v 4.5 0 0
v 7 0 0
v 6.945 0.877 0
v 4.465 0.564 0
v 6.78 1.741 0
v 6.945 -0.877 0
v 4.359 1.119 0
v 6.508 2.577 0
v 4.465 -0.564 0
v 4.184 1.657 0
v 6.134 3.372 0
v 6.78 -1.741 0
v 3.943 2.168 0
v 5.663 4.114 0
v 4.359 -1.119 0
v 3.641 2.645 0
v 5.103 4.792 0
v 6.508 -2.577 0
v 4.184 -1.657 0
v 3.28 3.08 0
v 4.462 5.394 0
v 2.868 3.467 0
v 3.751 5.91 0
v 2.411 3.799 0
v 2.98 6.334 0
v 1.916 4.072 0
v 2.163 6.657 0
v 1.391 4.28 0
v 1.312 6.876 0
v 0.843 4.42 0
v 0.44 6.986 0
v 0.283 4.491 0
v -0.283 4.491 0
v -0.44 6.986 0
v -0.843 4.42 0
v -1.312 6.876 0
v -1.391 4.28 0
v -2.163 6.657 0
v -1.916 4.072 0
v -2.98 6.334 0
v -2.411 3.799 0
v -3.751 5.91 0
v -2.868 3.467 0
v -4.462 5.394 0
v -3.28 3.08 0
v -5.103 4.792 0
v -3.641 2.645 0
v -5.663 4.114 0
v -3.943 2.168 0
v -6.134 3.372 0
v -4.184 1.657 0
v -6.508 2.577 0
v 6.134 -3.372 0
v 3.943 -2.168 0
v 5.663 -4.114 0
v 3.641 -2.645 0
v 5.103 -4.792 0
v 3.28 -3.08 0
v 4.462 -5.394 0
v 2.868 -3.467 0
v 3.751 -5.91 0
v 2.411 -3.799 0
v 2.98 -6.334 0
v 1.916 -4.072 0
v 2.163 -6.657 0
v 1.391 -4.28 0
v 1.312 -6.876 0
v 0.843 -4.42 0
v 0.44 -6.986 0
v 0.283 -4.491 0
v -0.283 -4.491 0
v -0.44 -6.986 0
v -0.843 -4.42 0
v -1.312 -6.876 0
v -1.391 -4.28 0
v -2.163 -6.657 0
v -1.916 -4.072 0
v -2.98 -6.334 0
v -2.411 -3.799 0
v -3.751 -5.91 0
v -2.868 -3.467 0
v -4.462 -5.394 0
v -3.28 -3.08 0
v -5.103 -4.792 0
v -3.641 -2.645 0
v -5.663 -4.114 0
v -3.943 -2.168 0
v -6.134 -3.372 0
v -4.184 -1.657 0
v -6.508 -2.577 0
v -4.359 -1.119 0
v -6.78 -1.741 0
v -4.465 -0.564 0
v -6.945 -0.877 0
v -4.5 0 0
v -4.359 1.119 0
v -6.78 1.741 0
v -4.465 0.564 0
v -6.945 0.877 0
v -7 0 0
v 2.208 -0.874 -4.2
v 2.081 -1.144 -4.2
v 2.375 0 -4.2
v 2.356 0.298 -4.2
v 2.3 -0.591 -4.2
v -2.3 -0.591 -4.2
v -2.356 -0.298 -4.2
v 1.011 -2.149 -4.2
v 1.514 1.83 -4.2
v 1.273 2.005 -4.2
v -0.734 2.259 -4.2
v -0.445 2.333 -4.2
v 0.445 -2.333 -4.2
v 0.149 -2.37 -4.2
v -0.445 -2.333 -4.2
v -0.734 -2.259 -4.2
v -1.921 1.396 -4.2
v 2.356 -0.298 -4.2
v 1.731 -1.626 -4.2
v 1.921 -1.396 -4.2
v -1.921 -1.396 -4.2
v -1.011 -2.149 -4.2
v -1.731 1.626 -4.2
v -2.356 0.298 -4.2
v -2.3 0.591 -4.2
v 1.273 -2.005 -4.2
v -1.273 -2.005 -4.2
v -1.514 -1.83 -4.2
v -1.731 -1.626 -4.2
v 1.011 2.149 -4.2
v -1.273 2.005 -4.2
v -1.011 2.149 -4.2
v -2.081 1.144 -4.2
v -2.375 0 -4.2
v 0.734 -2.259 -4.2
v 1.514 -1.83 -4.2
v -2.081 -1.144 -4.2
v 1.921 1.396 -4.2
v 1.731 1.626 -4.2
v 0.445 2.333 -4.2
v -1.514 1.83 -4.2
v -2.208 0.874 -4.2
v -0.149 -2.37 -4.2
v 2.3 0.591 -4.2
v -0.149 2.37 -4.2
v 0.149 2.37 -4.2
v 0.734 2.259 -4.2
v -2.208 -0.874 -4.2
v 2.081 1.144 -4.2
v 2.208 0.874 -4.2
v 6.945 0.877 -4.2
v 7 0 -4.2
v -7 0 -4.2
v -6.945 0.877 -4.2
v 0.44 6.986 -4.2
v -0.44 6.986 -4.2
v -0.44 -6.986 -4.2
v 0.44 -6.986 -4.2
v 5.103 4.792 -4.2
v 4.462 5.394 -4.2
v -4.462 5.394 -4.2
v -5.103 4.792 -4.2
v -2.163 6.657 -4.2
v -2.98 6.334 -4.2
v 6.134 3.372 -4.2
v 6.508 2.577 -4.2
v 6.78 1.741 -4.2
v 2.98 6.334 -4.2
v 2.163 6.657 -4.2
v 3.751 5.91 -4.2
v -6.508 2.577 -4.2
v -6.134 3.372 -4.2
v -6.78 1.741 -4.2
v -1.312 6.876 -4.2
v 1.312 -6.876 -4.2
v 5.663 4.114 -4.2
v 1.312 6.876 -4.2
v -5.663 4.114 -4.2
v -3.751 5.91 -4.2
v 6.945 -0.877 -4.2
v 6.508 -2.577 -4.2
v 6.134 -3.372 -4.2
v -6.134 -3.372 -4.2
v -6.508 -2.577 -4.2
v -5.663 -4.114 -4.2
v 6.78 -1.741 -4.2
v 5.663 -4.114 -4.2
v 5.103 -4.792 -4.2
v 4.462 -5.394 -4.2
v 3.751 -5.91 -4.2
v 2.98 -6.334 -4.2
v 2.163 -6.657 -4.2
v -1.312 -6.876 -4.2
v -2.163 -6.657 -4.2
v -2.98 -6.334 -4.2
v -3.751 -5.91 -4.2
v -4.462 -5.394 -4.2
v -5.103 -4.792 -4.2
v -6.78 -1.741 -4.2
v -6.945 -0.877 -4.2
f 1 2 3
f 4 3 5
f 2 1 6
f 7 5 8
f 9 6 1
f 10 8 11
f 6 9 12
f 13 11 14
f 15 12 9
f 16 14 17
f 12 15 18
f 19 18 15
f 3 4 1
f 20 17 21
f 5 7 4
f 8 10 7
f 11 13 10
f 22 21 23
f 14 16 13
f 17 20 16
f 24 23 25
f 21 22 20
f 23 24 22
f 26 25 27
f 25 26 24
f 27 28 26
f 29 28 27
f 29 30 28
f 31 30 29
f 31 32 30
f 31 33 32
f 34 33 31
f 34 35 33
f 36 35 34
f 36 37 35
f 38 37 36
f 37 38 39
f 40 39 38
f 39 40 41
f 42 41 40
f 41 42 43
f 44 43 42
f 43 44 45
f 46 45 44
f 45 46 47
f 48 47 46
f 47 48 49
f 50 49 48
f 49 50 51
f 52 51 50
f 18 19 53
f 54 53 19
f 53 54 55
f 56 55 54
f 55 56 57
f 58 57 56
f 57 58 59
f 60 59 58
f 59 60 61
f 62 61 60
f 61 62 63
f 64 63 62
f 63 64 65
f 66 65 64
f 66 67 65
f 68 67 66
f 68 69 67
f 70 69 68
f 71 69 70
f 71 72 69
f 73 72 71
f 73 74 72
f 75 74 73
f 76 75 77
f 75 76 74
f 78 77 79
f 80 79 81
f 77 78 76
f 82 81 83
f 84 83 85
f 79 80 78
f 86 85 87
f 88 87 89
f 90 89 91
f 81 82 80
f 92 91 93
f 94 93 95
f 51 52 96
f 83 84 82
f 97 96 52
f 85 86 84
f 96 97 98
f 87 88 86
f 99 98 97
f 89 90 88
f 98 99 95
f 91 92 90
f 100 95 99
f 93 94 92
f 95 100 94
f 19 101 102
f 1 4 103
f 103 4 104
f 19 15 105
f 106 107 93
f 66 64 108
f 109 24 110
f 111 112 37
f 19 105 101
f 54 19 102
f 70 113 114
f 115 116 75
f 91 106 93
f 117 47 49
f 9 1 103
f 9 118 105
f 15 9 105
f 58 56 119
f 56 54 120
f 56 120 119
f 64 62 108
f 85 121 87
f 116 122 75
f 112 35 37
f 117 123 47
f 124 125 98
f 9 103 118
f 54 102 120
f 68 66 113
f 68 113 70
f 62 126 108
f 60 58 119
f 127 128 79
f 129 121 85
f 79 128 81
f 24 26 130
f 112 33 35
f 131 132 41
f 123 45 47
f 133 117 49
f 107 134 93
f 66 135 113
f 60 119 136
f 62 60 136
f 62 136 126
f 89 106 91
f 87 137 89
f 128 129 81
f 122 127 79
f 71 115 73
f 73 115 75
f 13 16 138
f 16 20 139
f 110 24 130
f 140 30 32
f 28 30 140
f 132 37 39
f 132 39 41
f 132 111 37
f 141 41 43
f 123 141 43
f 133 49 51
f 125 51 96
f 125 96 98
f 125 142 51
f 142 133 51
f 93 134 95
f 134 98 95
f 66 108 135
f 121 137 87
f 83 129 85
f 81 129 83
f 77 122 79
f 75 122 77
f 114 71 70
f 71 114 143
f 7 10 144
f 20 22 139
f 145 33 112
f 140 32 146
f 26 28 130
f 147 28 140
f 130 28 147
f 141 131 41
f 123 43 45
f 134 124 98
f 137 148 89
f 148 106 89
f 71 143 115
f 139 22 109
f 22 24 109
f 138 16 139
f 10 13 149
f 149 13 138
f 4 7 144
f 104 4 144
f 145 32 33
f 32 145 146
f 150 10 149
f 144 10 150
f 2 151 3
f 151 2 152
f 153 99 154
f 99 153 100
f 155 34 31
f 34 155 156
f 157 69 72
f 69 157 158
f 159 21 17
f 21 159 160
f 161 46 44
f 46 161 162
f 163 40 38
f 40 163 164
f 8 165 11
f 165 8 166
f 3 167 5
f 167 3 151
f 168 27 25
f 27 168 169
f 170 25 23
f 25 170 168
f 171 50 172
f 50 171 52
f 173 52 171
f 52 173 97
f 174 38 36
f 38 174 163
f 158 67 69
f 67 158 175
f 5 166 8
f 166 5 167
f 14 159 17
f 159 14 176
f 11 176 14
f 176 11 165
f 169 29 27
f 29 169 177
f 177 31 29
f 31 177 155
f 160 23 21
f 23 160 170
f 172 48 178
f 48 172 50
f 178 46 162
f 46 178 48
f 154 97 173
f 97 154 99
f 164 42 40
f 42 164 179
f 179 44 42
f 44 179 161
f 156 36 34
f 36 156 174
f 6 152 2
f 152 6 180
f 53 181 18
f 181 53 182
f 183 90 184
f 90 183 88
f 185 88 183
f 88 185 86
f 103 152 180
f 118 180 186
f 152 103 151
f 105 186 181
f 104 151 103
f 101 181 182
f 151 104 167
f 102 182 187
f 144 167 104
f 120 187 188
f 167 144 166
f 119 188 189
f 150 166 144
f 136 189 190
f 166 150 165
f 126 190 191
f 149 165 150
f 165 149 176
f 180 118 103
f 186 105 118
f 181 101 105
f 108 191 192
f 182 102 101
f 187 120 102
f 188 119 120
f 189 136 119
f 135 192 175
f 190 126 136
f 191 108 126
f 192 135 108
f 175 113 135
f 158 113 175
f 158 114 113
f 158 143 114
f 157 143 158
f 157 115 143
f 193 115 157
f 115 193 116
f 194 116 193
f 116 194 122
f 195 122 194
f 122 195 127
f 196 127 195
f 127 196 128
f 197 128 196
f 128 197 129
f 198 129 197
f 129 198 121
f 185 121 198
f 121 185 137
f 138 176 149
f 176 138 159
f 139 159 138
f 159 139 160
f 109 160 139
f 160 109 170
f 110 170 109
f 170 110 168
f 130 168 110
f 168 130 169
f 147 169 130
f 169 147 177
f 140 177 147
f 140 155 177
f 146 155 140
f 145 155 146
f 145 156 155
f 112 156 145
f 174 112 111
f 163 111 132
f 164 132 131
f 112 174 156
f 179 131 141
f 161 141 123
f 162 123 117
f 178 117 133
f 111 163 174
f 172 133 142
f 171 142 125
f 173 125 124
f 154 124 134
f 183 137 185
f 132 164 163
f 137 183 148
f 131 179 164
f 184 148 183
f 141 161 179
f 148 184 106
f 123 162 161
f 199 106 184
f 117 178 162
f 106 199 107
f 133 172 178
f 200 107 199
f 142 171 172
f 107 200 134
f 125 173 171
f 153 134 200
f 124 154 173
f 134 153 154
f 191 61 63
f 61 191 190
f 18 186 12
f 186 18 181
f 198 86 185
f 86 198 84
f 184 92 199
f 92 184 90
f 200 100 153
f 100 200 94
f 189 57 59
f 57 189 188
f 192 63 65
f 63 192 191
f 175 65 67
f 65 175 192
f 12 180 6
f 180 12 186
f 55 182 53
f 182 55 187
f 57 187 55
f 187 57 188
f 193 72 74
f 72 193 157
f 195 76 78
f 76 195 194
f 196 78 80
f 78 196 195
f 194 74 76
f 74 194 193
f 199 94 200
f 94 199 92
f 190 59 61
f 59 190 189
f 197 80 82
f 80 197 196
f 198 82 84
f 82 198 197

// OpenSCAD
$fn = 50;

difference() {
	union() {
		translate(v = [0, 0, -4.2]) {
			cylinder(h = 4.2, r = 7.0);
		}
	}
	union() {
		translate(v = [0, 0, 0]) {
			rotate(a = [0, 0, 0]) {
				difference() {
					union() {
						translate(v = [0, 0, -7.2]) {
							cylinder(h = 7.2, r = 2.25);
						}
						translate(v = [0, 0, -4.2]) {
							cylinder(h = 4.2, r1 = 2.375, r2 = 4.5);
						}
						translate(v = [0, 0, -7.2]) {
							cylinder(h = 7.2, r = 2.375);
						}
						translate(v = [0, 0, -7.2]) {
							cylinder(h = 7.2, r = 2.25);
						}
					}
					union();
				}
			}
		}
	}
}
